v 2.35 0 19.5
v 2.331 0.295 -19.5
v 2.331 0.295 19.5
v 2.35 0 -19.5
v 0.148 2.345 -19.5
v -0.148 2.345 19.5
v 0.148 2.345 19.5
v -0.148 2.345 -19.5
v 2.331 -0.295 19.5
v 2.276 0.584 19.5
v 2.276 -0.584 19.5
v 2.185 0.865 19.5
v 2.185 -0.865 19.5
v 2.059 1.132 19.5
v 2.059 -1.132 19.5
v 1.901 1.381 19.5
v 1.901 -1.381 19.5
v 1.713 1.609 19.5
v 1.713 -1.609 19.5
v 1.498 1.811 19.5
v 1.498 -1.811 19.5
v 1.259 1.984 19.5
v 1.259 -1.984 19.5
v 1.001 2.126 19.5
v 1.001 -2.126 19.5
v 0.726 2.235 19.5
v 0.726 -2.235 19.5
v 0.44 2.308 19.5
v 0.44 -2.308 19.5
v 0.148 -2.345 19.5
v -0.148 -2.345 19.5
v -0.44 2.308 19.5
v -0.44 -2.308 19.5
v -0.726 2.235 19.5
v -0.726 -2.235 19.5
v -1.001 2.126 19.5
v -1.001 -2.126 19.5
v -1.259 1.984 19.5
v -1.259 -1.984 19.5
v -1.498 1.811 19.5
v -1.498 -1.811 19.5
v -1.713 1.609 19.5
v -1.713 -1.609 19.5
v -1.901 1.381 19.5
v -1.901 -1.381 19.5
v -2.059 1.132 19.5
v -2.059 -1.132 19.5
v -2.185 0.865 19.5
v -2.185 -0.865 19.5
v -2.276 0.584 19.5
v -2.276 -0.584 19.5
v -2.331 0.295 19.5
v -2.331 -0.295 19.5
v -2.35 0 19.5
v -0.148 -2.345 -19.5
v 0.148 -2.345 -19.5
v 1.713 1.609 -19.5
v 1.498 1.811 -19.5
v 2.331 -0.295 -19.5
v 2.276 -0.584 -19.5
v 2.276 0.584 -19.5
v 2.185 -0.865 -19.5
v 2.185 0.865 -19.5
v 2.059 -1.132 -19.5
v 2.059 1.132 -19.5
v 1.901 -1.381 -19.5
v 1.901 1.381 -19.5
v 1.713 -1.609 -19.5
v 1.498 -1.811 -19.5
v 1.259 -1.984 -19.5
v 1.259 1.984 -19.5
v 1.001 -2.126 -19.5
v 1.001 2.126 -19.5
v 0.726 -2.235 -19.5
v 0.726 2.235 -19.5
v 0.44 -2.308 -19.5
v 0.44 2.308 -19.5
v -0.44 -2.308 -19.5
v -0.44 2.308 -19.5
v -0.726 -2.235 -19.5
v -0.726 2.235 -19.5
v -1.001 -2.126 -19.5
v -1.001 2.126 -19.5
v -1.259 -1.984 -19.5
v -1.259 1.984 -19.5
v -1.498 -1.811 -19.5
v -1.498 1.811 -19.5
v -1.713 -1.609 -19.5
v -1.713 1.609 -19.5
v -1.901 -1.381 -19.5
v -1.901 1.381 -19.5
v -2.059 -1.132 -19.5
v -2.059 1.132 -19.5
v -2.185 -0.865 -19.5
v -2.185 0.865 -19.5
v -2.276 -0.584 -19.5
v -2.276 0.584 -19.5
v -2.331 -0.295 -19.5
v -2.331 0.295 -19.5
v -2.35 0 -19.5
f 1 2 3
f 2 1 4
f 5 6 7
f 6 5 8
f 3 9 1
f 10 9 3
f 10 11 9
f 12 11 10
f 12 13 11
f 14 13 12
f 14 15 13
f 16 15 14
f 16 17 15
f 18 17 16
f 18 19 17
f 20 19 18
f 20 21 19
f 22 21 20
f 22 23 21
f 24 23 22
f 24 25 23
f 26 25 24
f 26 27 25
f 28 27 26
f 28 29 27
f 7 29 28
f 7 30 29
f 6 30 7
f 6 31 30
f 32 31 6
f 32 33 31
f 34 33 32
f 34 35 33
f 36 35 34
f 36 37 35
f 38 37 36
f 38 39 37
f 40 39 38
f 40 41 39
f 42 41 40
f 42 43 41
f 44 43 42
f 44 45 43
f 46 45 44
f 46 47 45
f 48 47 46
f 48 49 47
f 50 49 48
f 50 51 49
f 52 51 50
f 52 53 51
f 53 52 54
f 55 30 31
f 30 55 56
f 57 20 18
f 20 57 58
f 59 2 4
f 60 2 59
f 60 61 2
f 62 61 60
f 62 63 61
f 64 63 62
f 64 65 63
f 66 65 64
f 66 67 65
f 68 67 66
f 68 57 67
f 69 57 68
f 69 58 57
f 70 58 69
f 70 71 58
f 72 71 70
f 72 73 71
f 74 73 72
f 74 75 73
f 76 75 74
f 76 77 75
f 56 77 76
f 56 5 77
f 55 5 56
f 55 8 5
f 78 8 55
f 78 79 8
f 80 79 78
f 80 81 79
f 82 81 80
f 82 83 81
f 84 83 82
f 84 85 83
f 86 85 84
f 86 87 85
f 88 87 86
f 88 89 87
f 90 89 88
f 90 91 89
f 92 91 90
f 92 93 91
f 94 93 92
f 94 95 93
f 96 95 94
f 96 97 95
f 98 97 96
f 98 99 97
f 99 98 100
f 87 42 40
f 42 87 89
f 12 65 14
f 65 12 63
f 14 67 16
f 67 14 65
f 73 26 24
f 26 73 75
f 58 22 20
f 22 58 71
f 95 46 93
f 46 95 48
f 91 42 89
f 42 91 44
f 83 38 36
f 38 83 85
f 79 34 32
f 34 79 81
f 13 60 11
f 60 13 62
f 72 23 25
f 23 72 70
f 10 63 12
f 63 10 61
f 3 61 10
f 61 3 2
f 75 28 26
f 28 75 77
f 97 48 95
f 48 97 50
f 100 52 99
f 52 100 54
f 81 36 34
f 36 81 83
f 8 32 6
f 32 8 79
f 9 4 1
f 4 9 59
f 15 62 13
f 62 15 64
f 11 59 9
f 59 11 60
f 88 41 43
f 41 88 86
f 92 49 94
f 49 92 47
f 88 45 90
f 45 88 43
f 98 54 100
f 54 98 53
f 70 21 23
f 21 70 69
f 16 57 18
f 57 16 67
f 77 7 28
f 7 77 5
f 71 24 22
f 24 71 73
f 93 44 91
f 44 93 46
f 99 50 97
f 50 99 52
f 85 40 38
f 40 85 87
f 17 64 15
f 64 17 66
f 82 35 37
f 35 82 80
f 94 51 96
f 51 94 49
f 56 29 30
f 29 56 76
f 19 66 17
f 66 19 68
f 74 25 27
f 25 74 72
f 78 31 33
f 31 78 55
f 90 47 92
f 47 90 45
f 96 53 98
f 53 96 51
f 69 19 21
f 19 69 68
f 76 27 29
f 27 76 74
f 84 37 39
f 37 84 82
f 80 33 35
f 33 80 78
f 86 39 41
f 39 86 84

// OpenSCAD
$fn = 50;


difference() {
	union() {
		translate(v = [0, 0, -19.5000000000]) {
			cylinder(h = 39, r = 2.3500000000);
		}
	}
	union() {
		translate(v = [0, 0, -100.0000000000]) {
			cylinder(h = 200, r = 0);
		}
	}
}
